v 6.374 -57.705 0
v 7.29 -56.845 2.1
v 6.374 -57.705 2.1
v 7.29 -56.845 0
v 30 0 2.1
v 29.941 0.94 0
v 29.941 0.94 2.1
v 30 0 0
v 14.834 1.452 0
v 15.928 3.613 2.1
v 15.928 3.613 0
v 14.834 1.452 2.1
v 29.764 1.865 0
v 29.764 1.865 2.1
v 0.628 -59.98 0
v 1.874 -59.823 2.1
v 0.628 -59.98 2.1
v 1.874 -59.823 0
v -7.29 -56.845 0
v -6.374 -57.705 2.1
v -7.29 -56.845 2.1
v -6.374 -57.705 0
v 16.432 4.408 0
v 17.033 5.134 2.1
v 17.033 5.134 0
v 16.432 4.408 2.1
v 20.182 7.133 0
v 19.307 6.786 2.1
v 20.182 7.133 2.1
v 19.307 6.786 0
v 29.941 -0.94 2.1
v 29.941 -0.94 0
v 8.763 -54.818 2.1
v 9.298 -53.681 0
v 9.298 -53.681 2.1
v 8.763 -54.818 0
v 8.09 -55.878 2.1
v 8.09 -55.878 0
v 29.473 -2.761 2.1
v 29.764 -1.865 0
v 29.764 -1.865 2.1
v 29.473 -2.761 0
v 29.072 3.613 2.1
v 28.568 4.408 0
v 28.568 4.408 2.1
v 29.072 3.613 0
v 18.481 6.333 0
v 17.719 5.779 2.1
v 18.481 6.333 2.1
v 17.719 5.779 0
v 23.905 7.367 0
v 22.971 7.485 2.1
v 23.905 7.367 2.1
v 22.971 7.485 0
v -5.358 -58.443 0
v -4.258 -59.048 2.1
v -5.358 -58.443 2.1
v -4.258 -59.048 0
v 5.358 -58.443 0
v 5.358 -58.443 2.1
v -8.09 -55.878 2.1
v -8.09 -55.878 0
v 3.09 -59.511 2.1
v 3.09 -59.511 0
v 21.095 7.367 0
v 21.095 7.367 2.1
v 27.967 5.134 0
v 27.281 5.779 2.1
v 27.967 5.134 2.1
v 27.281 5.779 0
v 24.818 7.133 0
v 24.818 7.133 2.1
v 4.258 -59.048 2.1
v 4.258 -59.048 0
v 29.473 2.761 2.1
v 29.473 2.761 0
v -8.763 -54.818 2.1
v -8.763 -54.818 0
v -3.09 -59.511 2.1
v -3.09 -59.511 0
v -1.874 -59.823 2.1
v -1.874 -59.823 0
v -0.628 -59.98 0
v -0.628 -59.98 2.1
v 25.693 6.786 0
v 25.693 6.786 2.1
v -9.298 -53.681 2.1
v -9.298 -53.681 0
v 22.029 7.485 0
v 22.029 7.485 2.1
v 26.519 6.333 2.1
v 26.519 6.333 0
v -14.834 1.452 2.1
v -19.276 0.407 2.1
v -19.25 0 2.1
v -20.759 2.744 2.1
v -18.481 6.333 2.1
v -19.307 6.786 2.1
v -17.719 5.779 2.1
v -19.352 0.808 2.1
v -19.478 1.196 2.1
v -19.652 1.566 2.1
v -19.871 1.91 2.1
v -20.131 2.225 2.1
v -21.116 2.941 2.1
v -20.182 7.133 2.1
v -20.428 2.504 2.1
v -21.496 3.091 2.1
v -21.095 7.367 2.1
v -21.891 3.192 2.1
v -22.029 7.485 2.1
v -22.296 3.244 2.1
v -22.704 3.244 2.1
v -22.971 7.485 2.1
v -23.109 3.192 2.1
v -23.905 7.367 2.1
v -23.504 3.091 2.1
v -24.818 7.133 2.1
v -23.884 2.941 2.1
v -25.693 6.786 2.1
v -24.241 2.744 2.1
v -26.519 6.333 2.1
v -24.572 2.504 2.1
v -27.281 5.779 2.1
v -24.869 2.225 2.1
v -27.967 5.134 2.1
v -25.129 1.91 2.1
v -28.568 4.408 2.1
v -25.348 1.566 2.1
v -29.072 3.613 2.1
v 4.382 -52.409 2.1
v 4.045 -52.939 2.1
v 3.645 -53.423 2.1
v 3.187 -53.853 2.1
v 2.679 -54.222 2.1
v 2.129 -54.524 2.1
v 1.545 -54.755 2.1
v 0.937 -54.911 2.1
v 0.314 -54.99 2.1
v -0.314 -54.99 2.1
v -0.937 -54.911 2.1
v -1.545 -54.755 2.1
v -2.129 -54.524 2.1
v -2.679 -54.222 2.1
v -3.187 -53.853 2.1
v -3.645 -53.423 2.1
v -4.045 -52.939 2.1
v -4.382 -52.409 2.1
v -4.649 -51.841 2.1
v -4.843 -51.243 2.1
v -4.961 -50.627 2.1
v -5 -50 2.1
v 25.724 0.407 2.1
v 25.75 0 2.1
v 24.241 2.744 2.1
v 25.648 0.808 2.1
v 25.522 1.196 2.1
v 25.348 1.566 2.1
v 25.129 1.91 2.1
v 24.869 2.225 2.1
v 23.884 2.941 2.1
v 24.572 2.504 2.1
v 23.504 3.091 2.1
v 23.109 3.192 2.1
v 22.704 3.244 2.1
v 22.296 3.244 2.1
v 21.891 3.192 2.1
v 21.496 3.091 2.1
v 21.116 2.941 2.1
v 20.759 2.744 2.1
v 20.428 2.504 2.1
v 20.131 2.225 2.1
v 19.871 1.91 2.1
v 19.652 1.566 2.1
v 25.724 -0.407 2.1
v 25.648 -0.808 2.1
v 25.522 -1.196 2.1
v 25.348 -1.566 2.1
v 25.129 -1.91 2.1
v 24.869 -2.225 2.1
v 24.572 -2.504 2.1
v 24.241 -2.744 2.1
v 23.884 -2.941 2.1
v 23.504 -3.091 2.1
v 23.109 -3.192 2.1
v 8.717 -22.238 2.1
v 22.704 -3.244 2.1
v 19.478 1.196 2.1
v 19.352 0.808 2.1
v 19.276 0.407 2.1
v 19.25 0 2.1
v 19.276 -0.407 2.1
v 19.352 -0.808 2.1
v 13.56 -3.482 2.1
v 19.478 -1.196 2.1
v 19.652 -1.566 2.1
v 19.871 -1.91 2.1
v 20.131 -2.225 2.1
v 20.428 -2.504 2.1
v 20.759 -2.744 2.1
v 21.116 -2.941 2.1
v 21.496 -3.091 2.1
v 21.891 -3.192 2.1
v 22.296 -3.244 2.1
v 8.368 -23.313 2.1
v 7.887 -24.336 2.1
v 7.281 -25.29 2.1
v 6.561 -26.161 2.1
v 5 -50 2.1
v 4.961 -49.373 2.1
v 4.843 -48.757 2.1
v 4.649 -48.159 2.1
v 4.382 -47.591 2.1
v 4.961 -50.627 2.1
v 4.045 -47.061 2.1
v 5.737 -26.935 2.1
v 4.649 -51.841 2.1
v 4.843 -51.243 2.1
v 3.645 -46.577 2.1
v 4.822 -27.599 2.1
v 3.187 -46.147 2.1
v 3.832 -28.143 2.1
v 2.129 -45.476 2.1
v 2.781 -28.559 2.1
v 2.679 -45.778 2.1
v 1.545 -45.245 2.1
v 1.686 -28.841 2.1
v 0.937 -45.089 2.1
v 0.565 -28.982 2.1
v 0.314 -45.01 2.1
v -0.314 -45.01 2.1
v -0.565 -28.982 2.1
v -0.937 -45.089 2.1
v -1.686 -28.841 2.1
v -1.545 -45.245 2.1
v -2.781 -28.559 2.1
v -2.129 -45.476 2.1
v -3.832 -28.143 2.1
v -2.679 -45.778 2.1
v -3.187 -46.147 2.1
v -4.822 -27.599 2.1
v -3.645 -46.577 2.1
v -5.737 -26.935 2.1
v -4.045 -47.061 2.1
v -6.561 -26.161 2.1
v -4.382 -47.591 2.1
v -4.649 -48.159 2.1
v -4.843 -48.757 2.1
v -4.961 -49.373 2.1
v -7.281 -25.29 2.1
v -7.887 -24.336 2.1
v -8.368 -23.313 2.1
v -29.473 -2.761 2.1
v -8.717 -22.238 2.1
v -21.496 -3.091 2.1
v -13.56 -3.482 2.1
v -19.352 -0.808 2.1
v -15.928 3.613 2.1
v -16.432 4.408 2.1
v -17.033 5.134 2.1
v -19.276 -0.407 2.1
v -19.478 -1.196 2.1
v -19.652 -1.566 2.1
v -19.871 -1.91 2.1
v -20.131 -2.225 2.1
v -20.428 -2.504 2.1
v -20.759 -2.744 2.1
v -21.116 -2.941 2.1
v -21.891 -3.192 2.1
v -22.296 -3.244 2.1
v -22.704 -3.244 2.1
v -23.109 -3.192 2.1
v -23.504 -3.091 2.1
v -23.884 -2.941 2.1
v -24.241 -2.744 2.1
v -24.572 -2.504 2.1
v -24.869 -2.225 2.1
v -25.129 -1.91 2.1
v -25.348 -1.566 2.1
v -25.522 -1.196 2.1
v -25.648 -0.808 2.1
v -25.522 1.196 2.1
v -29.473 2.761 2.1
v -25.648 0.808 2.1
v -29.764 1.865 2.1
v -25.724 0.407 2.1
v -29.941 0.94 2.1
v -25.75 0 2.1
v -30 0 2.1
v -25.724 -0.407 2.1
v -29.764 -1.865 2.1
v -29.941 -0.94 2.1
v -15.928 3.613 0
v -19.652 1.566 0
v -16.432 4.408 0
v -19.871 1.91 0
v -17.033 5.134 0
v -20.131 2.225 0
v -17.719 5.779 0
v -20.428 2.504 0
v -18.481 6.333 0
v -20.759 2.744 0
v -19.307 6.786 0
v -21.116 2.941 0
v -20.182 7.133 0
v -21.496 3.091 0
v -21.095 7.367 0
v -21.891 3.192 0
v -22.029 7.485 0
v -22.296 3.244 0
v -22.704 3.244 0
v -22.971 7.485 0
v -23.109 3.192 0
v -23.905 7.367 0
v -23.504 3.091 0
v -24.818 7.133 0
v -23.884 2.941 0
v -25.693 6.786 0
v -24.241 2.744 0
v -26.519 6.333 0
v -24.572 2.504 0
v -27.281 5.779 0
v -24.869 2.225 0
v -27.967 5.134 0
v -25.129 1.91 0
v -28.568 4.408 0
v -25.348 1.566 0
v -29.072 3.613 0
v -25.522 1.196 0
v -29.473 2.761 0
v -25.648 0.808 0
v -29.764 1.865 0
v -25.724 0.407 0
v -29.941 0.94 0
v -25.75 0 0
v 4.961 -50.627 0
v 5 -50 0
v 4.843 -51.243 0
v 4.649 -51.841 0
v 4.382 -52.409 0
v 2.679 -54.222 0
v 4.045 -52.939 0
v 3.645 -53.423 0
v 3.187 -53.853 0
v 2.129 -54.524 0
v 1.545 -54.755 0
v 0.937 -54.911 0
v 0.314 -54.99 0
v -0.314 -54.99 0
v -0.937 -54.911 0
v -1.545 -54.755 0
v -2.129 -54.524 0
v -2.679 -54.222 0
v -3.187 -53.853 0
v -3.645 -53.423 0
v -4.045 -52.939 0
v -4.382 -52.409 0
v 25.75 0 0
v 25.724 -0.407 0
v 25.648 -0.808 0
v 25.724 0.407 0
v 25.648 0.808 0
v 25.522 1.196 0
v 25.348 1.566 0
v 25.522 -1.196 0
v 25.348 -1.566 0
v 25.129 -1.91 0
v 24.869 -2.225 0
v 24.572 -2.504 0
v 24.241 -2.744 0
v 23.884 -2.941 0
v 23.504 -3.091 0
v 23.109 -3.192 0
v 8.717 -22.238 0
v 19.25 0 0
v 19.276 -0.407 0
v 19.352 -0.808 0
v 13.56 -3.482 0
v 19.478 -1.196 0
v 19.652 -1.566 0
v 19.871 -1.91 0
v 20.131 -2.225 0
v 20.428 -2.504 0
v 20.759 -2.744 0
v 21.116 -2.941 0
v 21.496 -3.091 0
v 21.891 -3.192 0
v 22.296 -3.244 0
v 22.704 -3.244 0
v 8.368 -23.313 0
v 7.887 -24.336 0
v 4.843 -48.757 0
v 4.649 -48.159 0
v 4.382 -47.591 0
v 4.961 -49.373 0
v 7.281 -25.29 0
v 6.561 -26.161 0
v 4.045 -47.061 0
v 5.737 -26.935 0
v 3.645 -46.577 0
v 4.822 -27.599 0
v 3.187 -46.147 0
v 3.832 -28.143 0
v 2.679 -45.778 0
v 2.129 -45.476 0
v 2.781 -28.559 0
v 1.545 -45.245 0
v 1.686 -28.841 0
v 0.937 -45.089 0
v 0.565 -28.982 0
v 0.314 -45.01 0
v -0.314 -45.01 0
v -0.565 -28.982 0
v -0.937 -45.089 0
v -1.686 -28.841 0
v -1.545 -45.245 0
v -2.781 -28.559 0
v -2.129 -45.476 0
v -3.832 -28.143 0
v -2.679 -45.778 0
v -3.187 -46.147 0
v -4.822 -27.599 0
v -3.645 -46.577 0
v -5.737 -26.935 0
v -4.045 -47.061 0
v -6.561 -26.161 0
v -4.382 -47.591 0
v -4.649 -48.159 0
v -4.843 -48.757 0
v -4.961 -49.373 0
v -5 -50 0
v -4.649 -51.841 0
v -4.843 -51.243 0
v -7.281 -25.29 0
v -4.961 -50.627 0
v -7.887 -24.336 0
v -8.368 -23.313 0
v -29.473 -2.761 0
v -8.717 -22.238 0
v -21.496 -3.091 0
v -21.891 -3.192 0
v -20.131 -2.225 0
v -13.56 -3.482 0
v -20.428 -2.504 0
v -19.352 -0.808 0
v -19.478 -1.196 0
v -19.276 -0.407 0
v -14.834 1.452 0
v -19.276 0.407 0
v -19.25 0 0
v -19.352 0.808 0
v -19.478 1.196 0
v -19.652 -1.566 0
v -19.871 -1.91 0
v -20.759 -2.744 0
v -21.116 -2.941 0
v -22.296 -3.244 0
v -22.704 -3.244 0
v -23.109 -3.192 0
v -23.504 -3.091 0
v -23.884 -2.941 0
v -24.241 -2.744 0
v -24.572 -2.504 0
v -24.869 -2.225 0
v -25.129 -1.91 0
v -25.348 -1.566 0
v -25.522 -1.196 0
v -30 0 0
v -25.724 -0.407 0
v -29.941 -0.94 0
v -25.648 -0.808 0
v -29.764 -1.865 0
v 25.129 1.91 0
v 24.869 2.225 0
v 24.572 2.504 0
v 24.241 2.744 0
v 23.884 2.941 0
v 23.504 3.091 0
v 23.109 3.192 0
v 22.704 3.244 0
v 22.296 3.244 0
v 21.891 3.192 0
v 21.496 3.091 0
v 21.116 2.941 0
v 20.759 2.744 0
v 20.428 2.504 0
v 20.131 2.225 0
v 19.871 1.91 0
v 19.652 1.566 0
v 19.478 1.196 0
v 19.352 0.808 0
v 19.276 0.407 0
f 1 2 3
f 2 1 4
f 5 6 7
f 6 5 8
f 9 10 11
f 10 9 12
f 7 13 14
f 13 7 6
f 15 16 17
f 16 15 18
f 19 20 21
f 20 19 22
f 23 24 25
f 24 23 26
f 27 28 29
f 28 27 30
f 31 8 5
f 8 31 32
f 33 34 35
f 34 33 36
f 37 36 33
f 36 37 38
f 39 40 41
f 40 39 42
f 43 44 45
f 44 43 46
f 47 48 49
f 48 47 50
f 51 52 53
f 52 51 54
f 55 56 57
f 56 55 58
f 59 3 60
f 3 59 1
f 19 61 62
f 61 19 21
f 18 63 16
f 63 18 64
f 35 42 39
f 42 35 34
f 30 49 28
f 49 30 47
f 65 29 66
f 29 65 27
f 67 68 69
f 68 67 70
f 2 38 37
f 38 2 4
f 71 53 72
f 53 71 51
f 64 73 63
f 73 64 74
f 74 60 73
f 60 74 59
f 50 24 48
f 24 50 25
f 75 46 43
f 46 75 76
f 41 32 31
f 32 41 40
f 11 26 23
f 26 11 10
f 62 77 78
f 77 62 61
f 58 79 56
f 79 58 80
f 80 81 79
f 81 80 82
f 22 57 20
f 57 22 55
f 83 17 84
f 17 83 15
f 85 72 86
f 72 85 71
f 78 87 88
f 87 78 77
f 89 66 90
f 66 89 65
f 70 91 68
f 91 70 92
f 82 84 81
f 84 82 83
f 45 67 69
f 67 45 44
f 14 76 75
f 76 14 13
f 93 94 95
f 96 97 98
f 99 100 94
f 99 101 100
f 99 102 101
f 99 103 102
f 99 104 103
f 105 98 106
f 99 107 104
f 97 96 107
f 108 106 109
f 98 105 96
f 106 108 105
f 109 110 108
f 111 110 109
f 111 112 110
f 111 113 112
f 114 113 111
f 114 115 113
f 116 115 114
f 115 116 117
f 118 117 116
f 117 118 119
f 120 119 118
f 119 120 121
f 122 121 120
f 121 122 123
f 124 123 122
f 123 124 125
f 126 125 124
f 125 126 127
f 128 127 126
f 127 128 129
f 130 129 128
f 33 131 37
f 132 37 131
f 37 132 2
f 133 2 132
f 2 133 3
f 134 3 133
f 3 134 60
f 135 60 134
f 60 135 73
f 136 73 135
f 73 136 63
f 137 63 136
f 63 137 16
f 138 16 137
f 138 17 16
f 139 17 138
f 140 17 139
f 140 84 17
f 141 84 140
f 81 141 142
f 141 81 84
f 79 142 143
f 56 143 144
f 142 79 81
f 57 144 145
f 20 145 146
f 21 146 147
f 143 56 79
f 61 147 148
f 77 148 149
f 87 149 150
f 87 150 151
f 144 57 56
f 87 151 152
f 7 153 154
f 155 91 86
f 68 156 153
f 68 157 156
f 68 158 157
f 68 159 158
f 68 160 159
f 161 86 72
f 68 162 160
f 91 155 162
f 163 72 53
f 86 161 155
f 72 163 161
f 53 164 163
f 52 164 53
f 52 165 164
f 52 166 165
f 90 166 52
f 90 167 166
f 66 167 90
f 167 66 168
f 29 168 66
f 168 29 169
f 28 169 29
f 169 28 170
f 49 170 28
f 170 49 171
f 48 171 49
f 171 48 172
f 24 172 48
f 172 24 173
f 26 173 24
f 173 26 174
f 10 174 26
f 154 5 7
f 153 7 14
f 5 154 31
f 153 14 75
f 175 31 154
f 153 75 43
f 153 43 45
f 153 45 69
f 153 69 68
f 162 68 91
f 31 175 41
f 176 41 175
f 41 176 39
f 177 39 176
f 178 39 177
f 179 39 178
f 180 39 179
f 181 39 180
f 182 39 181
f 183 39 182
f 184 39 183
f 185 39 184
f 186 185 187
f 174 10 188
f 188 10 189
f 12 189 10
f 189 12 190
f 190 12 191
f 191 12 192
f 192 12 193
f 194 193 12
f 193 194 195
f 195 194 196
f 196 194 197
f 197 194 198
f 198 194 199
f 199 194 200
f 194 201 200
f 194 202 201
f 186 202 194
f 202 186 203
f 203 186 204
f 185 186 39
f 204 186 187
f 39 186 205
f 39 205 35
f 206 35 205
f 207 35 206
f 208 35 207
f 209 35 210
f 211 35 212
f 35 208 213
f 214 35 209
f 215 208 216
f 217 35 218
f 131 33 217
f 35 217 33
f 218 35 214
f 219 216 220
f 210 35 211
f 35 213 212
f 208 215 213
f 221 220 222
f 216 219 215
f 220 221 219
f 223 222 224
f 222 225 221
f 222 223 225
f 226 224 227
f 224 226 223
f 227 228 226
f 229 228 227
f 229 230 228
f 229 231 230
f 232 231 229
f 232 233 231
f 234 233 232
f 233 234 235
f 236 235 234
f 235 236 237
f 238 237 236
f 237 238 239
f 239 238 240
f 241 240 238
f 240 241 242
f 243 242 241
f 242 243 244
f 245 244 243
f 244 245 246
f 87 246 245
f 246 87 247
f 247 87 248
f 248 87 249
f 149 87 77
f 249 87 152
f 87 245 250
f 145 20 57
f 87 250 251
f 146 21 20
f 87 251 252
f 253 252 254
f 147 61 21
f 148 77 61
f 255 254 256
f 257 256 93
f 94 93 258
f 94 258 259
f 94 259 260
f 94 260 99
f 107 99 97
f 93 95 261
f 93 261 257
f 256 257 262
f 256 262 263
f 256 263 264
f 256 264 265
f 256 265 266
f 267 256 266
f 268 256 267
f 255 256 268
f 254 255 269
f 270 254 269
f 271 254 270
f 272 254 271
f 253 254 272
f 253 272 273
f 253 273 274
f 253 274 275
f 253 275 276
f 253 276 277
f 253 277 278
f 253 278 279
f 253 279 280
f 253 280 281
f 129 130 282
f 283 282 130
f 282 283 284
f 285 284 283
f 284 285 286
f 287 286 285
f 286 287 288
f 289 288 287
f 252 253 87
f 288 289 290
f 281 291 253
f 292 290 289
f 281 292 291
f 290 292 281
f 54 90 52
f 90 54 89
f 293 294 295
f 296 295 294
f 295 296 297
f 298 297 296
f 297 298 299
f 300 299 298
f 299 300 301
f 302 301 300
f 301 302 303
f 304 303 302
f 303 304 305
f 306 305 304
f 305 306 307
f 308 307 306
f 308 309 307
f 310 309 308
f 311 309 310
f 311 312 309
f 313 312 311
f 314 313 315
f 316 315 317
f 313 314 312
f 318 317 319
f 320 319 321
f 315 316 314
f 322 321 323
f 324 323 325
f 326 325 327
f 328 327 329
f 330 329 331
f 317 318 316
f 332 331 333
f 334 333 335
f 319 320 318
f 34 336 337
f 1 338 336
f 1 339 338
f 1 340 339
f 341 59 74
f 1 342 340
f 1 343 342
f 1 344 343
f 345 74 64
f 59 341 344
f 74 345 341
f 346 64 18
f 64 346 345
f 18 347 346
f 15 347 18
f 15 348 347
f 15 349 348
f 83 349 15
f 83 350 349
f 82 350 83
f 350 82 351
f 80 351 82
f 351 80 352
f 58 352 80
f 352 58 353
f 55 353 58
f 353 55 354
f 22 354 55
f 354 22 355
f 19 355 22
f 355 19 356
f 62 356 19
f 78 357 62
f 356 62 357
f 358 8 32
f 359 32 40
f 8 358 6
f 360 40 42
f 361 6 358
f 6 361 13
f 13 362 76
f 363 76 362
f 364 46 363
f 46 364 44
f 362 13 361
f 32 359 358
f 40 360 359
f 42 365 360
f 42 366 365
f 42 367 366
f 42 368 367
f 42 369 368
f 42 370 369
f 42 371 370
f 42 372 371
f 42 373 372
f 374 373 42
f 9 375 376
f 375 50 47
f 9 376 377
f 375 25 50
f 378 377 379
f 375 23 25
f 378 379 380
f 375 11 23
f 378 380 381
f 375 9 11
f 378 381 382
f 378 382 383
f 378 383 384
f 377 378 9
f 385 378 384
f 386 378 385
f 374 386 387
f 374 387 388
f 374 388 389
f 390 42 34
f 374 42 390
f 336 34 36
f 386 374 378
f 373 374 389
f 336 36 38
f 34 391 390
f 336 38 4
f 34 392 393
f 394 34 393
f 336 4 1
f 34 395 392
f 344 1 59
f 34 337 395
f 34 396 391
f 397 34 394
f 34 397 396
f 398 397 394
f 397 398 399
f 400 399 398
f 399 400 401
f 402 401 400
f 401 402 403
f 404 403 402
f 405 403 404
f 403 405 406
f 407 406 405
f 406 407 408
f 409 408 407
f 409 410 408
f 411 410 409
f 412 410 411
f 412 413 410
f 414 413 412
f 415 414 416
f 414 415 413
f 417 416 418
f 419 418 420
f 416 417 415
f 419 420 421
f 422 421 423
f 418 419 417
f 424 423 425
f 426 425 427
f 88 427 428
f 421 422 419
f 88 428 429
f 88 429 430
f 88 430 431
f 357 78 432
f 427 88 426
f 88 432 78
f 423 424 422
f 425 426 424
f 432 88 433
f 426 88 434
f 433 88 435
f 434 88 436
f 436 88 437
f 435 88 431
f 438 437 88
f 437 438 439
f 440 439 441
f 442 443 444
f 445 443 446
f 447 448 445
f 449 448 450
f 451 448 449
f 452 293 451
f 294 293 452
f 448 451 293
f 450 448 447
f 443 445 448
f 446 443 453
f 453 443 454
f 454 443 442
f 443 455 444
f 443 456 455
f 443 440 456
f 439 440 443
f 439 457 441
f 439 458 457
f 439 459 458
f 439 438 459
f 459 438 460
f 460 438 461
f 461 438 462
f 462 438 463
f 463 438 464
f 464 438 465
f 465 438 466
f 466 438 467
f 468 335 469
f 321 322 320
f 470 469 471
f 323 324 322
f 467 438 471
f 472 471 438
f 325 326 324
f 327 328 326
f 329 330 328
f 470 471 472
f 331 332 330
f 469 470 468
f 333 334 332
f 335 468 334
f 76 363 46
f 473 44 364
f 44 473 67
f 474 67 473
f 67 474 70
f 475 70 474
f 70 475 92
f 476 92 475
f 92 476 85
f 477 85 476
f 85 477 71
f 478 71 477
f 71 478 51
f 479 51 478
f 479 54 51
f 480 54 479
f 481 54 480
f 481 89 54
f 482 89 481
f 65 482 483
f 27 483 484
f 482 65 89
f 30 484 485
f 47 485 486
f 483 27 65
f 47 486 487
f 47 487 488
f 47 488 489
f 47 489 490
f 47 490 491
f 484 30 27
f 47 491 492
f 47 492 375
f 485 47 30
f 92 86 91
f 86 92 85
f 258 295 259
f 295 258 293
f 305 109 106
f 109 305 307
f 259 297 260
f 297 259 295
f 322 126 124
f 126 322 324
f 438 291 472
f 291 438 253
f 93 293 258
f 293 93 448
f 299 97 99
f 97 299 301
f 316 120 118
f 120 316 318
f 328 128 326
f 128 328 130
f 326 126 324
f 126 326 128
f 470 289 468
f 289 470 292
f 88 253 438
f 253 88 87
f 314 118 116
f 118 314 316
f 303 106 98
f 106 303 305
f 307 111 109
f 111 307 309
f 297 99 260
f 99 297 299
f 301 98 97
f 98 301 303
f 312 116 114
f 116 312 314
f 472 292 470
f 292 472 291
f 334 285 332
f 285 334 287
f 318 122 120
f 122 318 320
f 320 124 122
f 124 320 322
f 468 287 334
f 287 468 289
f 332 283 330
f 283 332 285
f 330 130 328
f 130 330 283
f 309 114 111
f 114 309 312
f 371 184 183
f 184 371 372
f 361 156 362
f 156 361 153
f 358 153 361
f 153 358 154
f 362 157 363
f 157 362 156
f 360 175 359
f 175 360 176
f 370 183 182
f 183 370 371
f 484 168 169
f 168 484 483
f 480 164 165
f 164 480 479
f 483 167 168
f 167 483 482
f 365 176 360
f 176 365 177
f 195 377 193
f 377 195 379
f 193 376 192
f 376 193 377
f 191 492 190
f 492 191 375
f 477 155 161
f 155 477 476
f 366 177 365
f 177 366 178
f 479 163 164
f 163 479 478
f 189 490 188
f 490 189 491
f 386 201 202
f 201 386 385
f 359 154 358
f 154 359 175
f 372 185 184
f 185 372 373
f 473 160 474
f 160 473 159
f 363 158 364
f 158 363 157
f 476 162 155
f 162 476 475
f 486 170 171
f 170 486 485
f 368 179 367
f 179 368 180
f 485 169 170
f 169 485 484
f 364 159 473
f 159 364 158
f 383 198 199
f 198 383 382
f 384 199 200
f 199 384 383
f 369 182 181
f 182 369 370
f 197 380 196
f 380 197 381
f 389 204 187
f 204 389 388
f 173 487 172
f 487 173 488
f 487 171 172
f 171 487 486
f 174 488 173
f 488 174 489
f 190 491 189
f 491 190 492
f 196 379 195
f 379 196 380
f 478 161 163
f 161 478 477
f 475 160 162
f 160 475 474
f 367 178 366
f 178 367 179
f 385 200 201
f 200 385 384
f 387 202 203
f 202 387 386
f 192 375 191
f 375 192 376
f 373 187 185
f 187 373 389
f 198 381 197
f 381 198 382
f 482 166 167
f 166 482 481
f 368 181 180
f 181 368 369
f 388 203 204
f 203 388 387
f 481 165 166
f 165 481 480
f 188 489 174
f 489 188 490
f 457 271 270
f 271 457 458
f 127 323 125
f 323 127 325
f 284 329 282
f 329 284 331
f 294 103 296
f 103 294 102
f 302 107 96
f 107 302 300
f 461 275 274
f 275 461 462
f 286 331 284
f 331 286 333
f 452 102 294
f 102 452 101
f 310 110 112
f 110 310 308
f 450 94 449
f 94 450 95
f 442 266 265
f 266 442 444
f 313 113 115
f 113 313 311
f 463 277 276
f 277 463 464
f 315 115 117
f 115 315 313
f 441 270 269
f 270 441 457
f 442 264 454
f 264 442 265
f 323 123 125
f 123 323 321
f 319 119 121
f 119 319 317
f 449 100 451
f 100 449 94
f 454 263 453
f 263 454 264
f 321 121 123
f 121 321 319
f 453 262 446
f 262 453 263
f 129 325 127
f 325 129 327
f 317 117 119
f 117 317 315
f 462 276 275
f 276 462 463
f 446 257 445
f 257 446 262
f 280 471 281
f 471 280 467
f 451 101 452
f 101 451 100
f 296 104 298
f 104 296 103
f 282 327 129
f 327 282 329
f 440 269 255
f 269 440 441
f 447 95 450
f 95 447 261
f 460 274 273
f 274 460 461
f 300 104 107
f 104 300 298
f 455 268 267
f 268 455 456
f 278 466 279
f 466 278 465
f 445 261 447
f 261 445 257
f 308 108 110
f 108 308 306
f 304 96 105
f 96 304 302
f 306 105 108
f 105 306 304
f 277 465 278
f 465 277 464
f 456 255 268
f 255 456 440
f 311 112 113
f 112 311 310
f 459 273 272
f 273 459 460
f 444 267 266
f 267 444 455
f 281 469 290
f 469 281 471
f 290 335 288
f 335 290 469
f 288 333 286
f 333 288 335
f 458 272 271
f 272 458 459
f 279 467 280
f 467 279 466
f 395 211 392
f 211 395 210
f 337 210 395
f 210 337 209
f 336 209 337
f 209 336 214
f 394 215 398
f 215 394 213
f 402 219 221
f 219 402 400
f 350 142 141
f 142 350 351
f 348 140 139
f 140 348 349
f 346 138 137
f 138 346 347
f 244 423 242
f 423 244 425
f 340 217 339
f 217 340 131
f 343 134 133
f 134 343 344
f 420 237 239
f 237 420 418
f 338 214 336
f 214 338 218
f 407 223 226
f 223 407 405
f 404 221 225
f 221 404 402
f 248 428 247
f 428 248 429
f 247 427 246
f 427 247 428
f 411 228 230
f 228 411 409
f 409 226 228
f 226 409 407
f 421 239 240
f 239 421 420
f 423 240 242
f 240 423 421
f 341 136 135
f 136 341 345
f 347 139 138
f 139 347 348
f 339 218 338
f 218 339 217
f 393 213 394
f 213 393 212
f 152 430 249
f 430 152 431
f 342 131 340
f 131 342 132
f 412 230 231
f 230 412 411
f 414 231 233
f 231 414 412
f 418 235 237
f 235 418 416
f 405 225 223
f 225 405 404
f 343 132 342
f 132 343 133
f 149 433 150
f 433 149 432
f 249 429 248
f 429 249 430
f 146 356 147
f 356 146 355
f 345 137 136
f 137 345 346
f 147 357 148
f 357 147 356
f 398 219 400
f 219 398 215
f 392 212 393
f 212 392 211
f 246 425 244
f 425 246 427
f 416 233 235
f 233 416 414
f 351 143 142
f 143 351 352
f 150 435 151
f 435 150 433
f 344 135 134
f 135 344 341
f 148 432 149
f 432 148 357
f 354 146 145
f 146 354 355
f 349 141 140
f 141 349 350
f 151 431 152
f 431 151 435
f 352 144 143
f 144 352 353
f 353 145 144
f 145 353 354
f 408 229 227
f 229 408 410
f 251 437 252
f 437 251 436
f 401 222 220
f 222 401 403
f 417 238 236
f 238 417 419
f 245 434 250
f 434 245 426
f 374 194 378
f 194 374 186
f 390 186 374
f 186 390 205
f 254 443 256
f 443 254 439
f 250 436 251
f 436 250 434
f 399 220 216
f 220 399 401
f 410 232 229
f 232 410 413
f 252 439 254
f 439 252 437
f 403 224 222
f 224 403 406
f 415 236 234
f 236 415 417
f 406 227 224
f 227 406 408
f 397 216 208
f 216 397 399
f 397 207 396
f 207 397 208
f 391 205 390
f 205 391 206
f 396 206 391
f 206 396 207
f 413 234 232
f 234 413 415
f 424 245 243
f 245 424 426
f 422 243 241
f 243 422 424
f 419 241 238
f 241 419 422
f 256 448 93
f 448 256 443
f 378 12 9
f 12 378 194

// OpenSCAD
/*
  author: Christopher O'Brien  <obriencj@gmail.com>
  license: GPL v.3
*/


module v_bracket(thick=2.1, $fn=50) {
     /*
       this is the V-shaped bracket that comes with the 2.5" DCC Mini
       Gauges by default.
     */

     // todo: let's make this less of a mess.

     // how far from the main mounting hole center to the smaller
     // mounting hole centers along the y axis
     y_hole_space = 50;

     // distance between bolts, split in half since we'll duplicate
     b_offset = 45 / 2;

     translate([0, -y_hole_space, 0])
     difference() {
	  union() {
	       hull() {
		    cylinder(thick, r=20/2);
		    translate([b_offset, y_hole_space, 0]) {
			 cylinder(thick, r=15/2);
		    };
	       };
	       hull() {
		    cylinder(thick, r=20/2);
		    translate([-b_offset, y_hole_space, 0]) {
			 cylinder(thick, r=15/2);
		    };
	       };
	  };

	  translate([0, 0, -0.5]) {
	       translate([b_offset, y_hole_space, 0]) {
		    cylinder(thick+1, r=6.5/2);
	       };
	       translate([-b_offset, y_hole_space, 0]) {
		    cylinder(thick+1, r=6.5/2);
	       };
	       cylinder(thick+1, r=10/2);


	       hull() {
		    small_r = (44 - 26) / 2;
		    translate([0, 30, 0]) {
			 cylinder(thick+1, r=small_r);
		    };
		    translate([0, 58, 0]) {
			 cylinder(thick+1, r=32/2);
		    };
	       };
	  };
     };
}


v_bracket();


// The end.
